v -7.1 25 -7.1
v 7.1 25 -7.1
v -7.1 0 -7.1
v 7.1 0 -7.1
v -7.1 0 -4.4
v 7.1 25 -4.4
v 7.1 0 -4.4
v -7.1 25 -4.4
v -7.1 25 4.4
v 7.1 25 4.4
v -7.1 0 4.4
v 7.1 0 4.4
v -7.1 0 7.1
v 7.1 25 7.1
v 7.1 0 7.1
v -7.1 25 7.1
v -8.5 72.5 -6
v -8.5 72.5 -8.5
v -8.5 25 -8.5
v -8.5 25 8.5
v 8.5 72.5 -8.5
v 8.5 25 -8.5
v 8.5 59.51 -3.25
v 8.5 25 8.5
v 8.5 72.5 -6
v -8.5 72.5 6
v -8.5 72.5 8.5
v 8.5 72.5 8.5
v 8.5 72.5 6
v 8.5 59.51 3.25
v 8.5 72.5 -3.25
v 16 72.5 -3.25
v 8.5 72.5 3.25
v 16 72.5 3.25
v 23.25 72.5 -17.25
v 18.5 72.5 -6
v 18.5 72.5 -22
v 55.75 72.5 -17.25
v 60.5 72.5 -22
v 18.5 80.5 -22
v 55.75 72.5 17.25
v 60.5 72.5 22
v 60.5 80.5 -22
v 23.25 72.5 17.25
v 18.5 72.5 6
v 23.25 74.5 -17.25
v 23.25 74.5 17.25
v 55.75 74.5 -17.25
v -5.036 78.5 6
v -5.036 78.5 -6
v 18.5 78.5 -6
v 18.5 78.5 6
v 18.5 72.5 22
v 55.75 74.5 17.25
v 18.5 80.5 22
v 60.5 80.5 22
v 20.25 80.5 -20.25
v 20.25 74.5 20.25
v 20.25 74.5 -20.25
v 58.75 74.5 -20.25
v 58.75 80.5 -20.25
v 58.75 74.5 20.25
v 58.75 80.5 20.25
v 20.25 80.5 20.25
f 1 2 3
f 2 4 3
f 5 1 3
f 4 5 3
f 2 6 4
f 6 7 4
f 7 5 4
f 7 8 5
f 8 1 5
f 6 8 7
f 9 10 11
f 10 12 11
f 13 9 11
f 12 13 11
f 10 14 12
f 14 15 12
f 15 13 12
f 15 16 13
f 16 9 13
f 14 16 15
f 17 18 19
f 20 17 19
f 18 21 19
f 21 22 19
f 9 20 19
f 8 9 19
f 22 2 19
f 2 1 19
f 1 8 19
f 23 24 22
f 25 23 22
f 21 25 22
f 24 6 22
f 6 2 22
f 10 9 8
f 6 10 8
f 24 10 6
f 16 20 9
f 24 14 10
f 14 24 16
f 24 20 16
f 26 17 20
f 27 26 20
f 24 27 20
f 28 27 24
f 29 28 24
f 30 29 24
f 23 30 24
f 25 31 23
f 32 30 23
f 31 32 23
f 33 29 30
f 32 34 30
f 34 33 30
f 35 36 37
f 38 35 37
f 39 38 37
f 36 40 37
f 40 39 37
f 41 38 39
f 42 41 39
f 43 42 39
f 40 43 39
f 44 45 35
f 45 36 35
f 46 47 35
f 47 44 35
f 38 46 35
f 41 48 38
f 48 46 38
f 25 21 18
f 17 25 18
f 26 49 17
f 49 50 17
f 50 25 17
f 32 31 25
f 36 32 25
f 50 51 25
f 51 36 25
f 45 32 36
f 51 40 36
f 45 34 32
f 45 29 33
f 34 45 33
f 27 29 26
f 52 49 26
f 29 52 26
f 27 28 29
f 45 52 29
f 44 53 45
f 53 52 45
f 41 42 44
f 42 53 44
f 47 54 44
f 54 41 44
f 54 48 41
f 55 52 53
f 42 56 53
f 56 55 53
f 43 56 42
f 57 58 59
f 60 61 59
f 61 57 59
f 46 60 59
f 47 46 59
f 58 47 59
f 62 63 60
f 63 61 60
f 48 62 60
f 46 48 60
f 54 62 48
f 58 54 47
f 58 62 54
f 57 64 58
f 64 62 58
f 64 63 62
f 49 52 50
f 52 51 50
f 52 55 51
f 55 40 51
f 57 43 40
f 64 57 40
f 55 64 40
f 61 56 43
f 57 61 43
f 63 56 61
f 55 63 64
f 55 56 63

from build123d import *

# Parameters (mm, degrees)
SKETCH1_W                = 14.2
SKETCH1_H                = 2.7
BOSS_EXTRUDE1_DEPTH      = 25
BOSS_EXTRUDE1_2_DEPTH    = 25
SKETCH2_W                = 17
SKETCH2_H                = 17
BOSS_EXTRUDE2_DEPTH      = 47.5
BOSS_EXTRUDE4_DEPTH      = 6
SKETCH6_W                = 42
SKETCH6_H                = 44
SKETCH6_W_2              = 38.5
SKETCH6_H_2              = 40.5
BOSS_EXTRUDE5_DEPTH      = 2
BOSS_EXTRUDE5_DEPTH_BACK = 6
SKETCH7_W                = 38.5
SKETCH7_H                = 40.5
SKETCH7_W_2              = 32.5
SKETCH7_H_2              = 34.5
BOSS_EXTRUDE6_DEPTH      = 2
BOSS_EXTRUDE7_DEPTH      = 3.25


with BuildPart() as part:
    # Sketch1 → Boss-Extrude1 (new body)
    with BuildSketch(Plane(origin=(0, 0, 0), x_dir=(1, 0, 0), z_dir=(0, 1, 0))):
        with Locations((0, -5.75)):
            Rectangle(SKETCH1_W, SKETCH1_H)
    extrude(amount=BOSS_EXTRUDE1_DEPTH)



with BuildPart() as body_2:
    # Sketch1 → Boss-Extrude1 2 (new body)
    with BuildSketch(Plane(origin=(0, 0, 0), x_dir=(1, 0, 0), z_dir=(0, 1, 0))):
        with Locations((0, 5.75)):
            Rectangle(SKETCH1_W, SKETCH1_H)
    extrude(amount=BOSS_EXTRUDE1_2_DEPTH)


with BuildPart() as part_1:
    add(part.part)

    add(body_2.part)  # Boss-Extrude2 merges body 2
    # Sketch2 → Boss-Extrude2 (add)
    with BuildSketch(Plane(origin=(0, 25, 0), x_dir=(1, 0, 0), z_dir=(0, 1, 0))):
        Rectangle(SKETCH2_W, SKETCH2_H)
    extrude(amount=BOSS_EXTRUDE2_DEPTH)

    # Sketch5 → Boss-Extrude4 (add, symmetric)
    with BuildSketch(Plane.XY):
        Polygon((-8.5, 72.5), (-5.035898385, 78.5), (18.5, 78.5), (18.5, 72.5), align=None)
    extrude(amount=BOSS_EXTRUDE4_DEPTH, both=True)

    # Sketch6 → Boss-Extrude5 (add, two sides)
    with BuildSketch(Plane(origin=(0, 78.5, 0), x_dir=(1, 0, 0), z_dir=(0, 1, 0))) as boss_extrude5_sk:
        with Locations((39.5, 0)):
            Rectangle(SKETCH6_W, SKETCH6_H)
        with Locations((39.5, 0)):
            Rectangle(SKETCH6_W_2, SKETCH6_H_2, mode=Mode.SUBTRACT)
    extrude(amount=BOSS_EXTRUDE5_DEPTH)
    extrude(boss_extrude5_sk.sketch, amount=-BOSS_EXTRUDE5_DEPTH_BACK)

    # Sketch7 → Boss-Extrude6 (add)
    with BuildSketch(Plane.XZ.offset(-72.5)):
        with Locations((39.5, 0)):
            Rectangle(SKETCH7_W, SKETCH7_H)
        with Locations((39.5, 0)):
            Rectangle(SKETCH7_W_2, SKETCH7_H_2, mode=Mode.SUBTRACT)
    extrude(amount=-BOSS_EXTRUDE6_DEPTH)

    # Sketch8 → Boss-Extrude7 (add, symmetric)
    with BuildSketch(Plane.XY):
        Polygon((16, 72.5), (8.5, 59.509618943), (8.5, 72.5), align=None)
    extrude(amount=BOSS_EXTRUDE7_DEPTH, both=True)


solid = part_1.part
